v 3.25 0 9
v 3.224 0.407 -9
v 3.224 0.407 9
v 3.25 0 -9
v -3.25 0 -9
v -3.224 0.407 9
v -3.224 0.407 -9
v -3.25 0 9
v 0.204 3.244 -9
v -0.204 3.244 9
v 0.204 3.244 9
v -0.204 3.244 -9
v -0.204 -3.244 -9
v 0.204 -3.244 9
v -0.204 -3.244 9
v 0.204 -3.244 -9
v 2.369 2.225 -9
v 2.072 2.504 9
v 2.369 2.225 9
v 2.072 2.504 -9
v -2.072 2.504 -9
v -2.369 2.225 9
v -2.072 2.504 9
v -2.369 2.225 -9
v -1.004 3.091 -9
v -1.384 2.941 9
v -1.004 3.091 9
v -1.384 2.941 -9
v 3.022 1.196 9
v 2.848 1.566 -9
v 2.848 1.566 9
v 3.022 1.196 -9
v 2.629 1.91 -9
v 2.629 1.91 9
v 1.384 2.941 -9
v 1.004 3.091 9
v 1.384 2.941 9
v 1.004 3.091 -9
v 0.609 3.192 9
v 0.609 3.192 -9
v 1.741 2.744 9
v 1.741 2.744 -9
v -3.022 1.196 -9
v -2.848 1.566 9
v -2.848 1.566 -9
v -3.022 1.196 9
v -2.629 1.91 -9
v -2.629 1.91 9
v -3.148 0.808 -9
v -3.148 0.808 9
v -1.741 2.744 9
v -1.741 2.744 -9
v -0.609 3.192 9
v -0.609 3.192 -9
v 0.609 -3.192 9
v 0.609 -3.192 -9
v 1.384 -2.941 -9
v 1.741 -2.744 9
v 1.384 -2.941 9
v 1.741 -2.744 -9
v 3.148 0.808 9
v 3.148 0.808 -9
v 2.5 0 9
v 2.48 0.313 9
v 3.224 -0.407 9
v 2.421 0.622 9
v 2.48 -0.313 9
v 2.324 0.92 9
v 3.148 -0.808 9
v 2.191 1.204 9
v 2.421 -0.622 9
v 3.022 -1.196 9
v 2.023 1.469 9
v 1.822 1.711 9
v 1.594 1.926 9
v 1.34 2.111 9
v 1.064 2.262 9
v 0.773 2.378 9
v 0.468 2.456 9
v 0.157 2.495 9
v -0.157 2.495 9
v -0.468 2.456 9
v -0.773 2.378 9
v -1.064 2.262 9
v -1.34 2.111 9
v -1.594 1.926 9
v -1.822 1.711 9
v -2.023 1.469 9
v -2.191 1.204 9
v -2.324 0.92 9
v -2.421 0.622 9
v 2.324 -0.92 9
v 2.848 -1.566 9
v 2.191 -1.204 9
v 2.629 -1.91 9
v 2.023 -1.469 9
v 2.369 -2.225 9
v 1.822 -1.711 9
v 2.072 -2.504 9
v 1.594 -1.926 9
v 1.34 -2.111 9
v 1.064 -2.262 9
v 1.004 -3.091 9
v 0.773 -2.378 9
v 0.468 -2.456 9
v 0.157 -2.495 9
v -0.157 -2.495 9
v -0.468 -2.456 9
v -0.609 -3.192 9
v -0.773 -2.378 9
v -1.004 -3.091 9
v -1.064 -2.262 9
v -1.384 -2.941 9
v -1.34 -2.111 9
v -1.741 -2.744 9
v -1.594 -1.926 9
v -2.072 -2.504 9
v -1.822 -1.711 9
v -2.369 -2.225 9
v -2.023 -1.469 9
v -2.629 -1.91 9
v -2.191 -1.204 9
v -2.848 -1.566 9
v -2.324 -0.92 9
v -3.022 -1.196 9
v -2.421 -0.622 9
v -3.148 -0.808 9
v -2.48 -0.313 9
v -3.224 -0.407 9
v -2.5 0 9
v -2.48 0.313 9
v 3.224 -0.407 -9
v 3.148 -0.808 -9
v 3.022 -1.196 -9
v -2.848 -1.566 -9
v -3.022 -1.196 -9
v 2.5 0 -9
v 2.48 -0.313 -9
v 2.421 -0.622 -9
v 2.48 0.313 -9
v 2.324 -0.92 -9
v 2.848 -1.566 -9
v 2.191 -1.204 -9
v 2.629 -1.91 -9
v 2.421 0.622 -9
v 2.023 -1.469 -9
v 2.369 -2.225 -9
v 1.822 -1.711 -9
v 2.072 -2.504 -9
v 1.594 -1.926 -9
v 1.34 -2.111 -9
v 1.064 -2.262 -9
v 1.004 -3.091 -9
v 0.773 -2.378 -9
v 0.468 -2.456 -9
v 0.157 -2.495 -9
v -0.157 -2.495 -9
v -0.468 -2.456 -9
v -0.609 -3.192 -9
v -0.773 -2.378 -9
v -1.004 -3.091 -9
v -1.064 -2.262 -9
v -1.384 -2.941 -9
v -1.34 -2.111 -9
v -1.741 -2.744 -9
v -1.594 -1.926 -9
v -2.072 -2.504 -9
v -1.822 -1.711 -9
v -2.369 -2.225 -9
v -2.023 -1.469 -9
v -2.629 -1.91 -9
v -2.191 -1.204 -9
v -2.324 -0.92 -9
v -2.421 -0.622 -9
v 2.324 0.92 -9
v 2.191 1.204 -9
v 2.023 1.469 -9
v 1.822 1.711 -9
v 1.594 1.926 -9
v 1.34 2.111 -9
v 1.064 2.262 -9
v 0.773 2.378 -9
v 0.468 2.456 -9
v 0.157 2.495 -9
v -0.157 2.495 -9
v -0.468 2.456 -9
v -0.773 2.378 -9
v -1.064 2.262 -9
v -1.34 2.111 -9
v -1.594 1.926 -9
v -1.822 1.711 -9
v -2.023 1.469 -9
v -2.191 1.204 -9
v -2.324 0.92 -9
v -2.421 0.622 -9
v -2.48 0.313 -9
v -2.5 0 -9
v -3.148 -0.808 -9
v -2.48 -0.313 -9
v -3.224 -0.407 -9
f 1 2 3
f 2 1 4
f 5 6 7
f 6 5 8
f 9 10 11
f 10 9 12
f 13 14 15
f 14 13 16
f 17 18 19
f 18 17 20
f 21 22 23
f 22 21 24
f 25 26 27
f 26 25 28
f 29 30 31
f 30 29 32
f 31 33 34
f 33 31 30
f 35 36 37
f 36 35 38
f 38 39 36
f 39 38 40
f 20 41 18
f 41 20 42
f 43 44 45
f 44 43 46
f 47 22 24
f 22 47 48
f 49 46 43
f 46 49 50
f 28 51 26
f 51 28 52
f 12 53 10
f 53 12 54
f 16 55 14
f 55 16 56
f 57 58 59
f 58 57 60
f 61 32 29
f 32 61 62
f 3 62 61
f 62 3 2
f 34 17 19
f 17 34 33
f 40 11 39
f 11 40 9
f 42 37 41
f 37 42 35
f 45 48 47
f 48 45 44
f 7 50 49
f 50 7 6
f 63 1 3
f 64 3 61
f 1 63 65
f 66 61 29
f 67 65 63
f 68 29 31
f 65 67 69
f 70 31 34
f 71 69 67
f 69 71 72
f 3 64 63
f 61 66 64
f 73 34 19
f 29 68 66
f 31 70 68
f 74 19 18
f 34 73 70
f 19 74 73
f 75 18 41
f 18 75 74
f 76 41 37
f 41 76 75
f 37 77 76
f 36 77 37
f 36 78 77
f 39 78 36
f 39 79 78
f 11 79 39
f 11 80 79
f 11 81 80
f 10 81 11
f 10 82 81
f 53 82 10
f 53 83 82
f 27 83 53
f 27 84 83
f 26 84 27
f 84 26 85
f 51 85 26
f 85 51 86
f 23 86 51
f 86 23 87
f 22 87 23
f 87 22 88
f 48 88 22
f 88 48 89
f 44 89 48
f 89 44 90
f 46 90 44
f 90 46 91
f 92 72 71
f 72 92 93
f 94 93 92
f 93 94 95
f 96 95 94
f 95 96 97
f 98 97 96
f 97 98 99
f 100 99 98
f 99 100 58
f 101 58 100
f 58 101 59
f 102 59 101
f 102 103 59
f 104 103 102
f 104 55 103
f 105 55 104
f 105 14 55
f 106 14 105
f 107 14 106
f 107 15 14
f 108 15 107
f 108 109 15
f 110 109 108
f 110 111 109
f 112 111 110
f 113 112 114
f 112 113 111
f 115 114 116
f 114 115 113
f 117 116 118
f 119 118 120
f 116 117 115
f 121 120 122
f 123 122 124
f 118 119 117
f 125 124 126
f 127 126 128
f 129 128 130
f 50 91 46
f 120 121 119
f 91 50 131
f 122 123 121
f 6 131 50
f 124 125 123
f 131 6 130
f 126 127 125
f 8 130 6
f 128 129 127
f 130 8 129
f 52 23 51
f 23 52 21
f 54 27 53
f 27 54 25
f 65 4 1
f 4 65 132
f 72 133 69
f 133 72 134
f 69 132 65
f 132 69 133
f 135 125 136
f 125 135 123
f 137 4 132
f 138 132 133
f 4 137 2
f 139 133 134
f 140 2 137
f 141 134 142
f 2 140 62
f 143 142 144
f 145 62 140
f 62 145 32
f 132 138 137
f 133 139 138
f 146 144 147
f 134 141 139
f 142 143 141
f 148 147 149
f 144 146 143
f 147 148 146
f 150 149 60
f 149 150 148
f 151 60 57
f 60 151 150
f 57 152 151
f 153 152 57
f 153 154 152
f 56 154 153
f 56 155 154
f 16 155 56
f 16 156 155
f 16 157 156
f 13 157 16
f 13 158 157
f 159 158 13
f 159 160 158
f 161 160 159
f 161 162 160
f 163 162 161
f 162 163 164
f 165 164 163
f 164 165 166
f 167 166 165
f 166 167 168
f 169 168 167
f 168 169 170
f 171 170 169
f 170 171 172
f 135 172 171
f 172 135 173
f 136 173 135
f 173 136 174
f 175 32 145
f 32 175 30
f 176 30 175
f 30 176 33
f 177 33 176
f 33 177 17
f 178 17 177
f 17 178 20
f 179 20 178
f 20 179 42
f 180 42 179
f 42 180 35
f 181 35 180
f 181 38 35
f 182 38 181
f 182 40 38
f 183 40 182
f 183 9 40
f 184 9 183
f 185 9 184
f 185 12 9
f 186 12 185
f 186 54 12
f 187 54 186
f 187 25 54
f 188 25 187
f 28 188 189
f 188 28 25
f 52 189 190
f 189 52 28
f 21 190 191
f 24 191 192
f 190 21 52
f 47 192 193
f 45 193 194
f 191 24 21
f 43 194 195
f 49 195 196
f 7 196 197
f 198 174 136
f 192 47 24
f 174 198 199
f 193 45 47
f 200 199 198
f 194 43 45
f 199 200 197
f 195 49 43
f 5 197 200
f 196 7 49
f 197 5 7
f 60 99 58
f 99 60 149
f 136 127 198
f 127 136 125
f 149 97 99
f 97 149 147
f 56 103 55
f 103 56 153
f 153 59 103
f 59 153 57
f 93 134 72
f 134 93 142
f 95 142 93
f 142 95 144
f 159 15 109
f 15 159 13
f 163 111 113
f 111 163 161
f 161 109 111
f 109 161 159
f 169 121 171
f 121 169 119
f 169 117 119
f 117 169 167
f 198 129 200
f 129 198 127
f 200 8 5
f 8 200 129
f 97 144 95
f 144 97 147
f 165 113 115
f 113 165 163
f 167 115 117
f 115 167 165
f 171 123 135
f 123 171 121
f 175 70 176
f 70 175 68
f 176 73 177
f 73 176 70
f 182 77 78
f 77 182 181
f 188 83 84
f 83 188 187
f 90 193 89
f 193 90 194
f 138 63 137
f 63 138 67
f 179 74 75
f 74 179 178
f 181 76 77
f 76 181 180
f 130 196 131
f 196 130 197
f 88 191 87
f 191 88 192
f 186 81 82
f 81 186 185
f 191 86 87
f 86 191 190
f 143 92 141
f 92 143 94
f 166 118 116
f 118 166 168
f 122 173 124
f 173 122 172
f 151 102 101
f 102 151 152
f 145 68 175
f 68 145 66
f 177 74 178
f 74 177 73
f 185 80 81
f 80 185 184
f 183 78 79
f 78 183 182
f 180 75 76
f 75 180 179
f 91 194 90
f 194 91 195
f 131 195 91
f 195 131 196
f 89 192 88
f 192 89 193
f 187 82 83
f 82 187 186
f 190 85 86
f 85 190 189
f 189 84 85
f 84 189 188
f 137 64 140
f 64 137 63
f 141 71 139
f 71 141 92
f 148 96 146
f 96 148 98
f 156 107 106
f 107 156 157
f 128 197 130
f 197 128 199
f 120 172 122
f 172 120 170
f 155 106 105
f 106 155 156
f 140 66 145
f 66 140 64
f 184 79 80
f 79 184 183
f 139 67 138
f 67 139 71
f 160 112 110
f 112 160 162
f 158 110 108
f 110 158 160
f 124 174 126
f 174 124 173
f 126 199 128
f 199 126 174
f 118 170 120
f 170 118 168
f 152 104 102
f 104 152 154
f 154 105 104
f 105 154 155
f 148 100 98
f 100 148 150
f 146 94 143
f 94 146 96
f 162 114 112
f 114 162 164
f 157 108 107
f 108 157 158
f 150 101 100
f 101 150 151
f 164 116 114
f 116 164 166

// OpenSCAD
$fn = 50;


difference() {
	union() {
		translate(v = [0, 0, -9.0000000000]) {
			cylinder(h = 18, r = 3.2500000000);
		}
	}
	union() {
		translate(v = [0, 0, -100.0000000000]) {
			cylinder(h = 200, r = 2.5000000000);
		}
	}
}
